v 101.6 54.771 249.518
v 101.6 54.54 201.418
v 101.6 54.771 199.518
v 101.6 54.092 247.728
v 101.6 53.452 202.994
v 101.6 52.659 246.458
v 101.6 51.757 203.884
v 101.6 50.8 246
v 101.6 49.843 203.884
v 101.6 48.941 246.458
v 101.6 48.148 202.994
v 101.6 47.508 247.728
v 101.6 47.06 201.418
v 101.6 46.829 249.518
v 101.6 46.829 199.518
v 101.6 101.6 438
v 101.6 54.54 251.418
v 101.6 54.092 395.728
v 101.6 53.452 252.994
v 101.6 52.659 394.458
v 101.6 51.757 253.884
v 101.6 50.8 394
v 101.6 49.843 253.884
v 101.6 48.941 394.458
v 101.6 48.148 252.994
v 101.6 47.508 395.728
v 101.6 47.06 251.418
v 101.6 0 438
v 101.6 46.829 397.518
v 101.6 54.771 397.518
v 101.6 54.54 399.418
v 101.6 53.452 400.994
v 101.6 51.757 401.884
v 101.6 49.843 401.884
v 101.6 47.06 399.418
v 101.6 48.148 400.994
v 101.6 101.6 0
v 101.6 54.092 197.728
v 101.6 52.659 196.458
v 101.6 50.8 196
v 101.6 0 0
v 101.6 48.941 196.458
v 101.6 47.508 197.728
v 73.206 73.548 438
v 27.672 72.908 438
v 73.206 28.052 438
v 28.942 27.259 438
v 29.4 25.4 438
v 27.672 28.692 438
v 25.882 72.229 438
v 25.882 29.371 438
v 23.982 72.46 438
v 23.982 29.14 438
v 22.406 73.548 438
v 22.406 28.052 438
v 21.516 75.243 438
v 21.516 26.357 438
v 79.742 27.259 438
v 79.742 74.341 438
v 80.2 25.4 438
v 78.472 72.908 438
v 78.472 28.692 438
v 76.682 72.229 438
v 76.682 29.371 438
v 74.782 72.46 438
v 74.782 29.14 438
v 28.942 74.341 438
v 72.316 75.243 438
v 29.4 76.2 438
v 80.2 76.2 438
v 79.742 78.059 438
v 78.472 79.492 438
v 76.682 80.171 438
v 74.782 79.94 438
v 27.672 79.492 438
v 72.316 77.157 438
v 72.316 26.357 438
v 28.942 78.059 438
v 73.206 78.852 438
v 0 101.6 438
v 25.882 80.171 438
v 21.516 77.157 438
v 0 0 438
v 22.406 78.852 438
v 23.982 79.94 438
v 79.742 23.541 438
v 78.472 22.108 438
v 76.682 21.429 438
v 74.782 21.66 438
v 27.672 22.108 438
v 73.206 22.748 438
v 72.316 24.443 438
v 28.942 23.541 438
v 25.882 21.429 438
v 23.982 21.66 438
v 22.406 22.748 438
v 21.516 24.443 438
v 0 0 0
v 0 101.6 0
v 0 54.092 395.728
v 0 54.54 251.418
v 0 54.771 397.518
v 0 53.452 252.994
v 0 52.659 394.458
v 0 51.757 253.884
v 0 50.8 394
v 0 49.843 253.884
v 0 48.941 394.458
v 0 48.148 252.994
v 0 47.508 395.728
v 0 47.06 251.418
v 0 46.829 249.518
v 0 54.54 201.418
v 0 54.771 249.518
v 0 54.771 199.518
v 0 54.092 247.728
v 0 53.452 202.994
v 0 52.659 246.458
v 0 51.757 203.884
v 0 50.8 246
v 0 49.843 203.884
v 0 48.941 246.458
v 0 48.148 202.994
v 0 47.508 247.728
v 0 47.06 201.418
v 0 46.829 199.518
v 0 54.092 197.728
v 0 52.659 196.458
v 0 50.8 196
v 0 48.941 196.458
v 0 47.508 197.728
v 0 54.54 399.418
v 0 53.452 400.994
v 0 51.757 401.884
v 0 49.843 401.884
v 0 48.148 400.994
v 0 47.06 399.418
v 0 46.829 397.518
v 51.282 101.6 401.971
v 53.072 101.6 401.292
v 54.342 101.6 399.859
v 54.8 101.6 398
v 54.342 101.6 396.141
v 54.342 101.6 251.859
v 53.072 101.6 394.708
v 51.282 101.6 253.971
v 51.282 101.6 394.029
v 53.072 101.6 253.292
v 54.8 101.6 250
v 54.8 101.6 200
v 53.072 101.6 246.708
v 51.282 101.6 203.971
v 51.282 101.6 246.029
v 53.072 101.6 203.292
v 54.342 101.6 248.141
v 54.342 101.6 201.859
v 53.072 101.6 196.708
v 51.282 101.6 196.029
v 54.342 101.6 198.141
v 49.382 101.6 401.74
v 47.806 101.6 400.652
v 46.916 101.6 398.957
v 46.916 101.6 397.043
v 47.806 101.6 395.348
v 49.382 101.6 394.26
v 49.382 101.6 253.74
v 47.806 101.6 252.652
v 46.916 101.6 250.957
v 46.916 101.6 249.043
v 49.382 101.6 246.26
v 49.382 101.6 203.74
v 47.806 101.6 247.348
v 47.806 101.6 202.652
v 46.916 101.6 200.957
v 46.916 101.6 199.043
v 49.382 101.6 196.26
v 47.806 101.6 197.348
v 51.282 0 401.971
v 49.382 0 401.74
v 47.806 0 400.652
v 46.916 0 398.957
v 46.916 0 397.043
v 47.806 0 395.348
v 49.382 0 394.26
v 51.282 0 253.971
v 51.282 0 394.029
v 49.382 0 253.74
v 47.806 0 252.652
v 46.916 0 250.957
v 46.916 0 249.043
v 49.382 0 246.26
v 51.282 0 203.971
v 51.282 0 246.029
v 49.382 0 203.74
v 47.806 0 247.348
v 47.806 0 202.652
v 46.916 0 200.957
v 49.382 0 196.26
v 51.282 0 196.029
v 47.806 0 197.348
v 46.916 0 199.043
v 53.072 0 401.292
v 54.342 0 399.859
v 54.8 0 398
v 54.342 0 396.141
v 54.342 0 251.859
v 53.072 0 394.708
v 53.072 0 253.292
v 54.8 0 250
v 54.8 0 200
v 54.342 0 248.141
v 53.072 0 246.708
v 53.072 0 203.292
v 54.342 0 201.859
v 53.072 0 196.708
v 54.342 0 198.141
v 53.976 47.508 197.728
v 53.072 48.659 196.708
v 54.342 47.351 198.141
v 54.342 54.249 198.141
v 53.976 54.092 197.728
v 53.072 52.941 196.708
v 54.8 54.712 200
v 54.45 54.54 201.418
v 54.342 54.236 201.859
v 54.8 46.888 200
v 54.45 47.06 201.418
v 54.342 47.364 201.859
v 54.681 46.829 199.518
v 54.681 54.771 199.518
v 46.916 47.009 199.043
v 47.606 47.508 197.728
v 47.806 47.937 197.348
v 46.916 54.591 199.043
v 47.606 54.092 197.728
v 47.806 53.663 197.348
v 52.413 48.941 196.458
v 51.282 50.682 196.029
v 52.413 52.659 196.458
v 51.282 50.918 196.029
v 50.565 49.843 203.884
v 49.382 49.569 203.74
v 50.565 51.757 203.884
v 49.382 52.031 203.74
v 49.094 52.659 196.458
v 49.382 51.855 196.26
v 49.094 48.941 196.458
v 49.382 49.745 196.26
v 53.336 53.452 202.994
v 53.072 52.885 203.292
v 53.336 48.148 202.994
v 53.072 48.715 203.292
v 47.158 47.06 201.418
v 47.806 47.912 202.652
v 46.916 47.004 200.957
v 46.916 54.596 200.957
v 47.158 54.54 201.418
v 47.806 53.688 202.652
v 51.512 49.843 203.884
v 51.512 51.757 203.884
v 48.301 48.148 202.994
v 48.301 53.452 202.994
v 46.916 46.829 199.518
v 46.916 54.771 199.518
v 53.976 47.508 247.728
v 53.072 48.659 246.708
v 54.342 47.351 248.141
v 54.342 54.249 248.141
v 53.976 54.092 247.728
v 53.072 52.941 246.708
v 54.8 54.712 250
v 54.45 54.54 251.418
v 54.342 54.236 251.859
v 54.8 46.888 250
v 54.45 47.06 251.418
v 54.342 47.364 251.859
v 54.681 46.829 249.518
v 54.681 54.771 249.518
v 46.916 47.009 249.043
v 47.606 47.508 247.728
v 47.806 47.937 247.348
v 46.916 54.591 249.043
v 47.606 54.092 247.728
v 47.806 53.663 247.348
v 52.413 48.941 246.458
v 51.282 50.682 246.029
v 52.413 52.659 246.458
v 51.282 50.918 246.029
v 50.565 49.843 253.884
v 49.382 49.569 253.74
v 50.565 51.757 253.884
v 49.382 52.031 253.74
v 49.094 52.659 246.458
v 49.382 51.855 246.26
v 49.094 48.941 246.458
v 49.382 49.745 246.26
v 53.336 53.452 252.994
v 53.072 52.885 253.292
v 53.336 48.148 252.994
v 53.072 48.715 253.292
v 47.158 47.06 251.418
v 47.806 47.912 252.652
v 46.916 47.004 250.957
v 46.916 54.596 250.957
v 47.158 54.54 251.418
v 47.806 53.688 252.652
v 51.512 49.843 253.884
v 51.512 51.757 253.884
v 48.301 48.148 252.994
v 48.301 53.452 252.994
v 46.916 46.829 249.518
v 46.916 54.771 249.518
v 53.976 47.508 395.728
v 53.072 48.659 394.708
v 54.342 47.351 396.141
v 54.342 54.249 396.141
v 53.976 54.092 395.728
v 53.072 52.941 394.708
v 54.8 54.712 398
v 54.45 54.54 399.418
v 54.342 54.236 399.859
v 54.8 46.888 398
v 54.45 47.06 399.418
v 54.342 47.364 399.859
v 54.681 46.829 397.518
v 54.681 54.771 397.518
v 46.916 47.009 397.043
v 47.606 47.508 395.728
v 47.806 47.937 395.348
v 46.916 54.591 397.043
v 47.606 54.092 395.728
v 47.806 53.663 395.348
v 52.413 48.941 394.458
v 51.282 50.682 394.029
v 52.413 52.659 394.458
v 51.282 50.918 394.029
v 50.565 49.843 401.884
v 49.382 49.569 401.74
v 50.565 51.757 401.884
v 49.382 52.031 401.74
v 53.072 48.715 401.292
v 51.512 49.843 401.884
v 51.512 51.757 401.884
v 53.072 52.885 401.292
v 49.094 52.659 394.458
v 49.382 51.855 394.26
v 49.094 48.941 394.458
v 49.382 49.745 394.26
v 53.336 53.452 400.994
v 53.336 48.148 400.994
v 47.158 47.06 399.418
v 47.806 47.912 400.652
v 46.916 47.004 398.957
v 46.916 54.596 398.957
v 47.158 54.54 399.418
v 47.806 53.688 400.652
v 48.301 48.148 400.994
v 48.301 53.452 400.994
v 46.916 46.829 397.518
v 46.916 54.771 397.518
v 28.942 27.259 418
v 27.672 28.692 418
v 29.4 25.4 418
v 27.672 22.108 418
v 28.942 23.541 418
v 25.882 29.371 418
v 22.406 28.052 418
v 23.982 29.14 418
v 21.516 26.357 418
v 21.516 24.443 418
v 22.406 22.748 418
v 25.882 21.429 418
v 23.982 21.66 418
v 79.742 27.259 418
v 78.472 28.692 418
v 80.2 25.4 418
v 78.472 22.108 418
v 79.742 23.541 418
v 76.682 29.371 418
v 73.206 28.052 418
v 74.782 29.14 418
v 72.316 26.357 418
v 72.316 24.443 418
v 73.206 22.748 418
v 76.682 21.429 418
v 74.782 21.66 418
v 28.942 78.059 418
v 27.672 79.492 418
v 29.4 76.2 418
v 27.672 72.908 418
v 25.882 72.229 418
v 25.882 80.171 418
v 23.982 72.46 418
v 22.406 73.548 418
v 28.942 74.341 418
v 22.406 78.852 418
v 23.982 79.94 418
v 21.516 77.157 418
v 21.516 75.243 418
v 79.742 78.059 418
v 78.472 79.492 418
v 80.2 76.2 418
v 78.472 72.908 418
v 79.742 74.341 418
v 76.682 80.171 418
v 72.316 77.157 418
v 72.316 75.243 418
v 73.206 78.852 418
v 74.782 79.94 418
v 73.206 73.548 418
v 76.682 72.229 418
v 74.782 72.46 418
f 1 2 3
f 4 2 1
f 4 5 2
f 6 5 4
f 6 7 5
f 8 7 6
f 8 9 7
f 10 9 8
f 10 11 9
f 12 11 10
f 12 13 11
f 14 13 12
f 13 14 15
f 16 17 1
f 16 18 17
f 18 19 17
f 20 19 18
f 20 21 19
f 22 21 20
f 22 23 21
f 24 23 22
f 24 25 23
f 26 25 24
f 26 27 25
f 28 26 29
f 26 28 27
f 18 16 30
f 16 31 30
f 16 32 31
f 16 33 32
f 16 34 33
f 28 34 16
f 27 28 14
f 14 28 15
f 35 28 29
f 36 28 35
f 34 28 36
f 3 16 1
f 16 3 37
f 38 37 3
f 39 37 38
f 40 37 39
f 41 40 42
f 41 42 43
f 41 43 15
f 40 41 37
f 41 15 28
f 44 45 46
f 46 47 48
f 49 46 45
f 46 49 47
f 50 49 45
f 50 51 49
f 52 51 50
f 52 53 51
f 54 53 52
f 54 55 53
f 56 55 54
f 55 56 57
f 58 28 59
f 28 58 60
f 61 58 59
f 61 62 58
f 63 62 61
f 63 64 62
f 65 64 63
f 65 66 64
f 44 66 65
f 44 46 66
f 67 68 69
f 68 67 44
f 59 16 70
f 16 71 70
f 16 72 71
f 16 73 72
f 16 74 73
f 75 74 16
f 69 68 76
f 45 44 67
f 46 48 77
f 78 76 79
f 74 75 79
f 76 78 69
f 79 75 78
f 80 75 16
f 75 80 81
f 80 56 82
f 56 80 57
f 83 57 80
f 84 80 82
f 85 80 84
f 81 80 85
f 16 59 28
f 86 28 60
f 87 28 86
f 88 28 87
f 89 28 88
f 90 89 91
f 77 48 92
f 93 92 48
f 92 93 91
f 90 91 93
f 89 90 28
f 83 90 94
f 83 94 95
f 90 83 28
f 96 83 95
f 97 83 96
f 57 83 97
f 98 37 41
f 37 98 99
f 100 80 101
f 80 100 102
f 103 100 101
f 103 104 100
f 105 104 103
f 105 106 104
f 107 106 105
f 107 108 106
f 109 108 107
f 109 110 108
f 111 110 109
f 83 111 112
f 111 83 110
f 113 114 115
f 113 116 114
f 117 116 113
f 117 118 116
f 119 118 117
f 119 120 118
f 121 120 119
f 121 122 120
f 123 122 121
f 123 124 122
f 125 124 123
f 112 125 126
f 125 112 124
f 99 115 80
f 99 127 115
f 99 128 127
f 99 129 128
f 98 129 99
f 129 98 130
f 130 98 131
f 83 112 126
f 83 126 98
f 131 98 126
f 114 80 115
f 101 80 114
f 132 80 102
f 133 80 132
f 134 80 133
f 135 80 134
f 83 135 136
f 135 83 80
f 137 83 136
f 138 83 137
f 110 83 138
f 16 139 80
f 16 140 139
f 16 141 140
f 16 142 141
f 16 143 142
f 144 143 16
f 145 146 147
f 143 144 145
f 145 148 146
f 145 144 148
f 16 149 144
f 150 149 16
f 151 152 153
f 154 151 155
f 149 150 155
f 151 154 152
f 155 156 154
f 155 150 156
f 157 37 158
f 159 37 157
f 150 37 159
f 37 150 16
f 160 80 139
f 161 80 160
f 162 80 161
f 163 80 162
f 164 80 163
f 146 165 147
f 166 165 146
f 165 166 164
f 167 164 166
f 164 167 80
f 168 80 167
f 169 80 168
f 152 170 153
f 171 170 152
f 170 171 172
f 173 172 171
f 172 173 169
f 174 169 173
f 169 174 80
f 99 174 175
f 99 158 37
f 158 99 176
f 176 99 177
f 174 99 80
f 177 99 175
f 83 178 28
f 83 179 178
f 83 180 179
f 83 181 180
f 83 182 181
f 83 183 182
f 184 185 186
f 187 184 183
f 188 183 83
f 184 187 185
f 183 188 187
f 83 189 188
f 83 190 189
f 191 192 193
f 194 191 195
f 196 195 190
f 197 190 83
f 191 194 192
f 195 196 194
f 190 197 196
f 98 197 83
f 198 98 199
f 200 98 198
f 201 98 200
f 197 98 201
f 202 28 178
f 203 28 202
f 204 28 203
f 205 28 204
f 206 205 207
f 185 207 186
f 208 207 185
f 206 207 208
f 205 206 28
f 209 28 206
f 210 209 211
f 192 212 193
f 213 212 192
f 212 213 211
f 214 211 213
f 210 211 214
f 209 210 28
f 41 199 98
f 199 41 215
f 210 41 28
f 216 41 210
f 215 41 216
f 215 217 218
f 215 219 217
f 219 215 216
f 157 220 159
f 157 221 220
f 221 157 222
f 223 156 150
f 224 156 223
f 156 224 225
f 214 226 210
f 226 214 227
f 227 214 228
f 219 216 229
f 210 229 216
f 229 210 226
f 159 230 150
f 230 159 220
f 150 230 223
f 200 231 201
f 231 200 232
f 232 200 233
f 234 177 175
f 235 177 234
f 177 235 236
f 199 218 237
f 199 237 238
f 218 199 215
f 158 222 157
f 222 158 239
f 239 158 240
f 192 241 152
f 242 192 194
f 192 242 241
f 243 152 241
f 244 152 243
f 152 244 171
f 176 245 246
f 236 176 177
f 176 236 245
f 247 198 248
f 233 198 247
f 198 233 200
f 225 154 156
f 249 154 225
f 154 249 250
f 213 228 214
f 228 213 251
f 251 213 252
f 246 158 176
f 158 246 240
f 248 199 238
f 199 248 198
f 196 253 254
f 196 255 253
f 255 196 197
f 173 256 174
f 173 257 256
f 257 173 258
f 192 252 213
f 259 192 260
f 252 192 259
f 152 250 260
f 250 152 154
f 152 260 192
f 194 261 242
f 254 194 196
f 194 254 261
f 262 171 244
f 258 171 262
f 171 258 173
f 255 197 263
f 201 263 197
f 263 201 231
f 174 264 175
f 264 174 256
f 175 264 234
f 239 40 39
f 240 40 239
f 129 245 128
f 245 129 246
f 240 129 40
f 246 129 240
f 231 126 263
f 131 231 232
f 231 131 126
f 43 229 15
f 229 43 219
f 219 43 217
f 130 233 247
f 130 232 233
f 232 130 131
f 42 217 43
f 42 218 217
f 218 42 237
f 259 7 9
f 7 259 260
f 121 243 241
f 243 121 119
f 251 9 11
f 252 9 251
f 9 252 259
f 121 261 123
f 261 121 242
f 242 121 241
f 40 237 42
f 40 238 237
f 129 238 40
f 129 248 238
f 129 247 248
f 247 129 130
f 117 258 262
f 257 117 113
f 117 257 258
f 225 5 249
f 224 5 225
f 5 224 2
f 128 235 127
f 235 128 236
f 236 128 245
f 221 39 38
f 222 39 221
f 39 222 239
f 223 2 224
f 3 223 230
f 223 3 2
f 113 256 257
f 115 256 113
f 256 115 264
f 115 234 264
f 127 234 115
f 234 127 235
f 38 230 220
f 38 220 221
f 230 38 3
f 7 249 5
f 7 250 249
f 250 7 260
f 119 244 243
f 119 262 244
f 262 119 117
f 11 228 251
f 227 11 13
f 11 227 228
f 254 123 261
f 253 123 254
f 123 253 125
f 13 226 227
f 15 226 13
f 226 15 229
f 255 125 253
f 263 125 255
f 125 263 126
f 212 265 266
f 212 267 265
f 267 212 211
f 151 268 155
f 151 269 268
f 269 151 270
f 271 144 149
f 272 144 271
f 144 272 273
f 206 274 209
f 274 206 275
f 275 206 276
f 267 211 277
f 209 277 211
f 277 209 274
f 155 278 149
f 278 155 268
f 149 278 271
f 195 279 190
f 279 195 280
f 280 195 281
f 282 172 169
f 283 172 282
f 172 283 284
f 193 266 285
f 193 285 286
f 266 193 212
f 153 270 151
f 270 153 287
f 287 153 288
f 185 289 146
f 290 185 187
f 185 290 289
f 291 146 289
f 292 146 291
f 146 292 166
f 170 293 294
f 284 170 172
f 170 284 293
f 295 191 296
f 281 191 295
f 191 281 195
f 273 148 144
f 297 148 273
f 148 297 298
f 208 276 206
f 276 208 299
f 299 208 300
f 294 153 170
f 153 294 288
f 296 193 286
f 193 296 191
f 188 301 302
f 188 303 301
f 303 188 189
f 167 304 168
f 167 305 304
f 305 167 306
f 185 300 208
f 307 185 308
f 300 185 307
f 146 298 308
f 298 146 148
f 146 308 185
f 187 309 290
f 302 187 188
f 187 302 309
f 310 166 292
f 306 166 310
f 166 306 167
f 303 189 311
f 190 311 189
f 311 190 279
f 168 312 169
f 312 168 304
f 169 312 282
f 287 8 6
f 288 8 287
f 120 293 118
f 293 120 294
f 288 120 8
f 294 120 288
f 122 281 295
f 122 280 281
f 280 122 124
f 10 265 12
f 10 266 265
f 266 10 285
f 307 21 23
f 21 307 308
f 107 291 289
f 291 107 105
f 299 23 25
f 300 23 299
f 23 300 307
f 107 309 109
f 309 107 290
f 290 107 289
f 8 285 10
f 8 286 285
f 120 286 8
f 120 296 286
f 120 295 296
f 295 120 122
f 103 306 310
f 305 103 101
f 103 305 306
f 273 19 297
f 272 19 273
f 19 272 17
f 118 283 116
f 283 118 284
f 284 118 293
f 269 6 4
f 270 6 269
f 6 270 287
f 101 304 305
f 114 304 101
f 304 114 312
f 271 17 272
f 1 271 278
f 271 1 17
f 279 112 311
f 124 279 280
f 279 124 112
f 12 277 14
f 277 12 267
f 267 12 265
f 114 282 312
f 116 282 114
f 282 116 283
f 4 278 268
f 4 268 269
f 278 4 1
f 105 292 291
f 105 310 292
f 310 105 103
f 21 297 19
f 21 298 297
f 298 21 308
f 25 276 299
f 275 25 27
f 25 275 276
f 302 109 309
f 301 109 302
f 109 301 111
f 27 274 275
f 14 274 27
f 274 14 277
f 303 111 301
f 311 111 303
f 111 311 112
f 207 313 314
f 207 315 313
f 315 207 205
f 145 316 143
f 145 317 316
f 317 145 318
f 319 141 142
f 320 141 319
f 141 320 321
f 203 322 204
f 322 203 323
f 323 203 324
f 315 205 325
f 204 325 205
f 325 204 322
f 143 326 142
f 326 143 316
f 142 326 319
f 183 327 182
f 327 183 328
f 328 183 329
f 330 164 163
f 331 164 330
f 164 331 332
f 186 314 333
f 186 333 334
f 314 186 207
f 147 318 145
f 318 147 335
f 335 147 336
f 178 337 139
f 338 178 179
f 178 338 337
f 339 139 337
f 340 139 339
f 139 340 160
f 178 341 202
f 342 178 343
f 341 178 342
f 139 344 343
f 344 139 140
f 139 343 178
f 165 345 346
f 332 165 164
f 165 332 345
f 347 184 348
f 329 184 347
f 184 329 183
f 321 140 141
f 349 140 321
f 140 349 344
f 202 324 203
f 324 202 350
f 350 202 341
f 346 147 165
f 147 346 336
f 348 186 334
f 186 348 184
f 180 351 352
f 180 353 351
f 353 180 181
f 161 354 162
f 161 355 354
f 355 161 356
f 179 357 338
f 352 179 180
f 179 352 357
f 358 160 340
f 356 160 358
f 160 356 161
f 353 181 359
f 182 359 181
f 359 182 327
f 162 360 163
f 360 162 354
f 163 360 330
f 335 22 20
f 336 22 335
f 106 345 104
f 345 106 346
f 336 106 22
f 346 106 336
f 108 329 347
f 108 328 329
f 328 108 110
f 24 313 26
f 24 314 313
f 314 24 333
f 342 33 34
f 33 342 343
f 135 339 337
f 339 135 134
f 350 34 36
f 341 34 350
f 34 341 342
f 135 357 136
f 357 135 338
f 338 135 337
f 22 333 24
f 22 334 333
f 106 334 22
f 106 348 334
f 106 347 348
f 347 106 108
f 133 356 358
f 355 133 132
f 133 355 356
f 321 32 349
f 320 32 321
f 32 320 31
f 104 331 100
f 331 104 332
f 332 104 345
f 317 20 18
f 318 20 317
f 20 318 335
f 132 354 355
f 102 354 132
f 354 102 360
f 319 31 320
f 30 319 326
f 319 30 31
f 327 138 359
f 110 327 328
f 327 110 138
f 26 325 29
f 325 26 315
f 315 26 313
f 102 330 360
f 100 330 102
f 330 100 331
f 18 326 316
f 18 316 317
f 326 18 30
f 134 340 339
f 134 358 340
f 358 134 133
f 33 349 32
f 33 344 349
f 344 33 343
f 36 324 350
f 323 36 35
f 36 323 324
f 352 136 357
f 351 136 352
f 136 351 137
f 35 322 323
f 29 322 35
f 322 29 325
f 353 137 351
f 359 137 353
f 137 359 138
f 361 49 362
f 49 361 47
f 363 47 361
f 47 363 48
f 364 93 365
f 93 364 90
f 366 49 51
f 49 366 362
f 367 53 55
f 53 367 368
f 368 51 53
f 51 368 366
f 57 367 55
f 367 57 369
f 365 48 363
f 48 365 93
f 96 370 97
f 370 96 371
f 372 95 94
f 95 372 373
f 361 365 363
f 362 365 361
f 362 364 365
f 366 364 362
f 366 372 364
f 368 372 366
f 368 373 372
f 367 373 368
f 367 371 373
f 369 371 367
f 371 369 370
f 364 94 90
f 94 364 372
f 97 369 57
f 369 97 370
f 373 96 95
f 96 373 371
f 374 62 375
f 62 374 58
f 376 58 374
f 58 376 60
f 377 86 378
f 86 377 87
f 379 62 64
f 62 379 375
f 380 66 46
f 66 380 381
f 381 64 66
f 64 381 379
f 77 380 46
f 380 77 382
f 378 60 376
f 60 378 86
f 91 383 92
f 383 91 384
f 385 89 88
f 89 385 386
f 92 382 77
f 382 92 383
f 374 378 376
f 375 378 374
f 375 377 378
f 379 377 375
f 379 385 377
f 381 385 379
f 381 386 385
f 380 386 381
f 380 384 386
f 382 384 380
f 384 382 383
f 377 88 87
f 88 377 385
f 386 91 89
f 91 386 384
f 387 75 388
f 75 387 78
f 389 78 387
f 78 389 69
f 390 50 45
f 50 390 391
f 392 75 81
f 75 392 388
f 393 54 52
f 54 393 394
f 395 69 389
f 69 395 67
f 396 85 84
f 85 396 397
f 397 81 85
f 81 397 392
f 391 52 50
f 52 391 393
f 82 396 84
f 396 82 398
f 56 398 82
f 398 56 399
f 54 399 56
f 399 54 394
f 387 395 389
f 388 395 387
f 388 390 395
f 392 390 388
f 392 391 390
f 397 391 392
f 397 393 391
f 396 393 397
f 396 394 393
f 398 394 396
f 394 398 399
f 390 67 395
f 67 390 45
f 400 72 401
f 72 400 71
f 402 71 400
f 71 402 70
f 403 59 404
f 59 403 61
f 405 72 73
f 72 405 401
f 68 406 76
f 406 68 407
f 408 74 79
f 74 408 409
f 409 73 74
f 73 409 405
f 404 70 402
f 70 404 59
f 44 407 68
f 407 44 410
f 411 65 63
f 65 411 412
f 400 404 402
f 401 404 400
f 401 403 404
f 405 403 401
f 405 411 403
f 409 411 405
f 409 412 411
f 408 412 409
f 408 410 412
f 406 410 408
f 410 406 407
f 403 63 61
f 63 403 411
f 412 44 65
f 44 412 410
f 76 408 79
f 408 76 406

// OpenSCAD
// file: dimensions.scad
// Shared dimensions for SV08 Max Table Components
// Include this file in all component SCAD files

// Convert inches to mm
inch = 25.4;

// Table dimensions
table_width = 802;  // mm
table_depth = 802;  // mm
table_height = 463; // mm (desk height - printer bed at ~30" from floor)

// Component dimensions
leg_size = 4 * inch;          // 4x4 inch legs (101.6mm)
rail_thickness = 30;          // mm (printable thickness)
rail_width = 80;              // mm (printable width)
top_thickness = 25;           // mm

// Connection system dimensions
bolt_hole_diameter = 8;       // M8 bolts
counterbore_diameter = 16;    // For bolt heads
counterbore_depth = 10;       // mm

// Rail heights
bottom_rail_height = 200;     // mm
mid_rail_height = 250;        // mm
top_rail_height = table_height - top_thickness - rail_width; // Calculated

// Calculated rail lengths
long_rail_length = table_width - 2 * leg_size;   // 599mm
short_rail_length = table_depth - 2 * leg_size;  // 599mm

// Table top segment dimensions
segment_width = 150;          // mm
segment_depth = table_depth;  // 802mm
final_segment_width = 52;     // mm (to complete 802mm total width)

// Alignment pin dimensions
pin_diameter = 7.8;           // mm (slightly undersized for press fit)
pin_length = 15;              // mm
pin_hole_diameter = 8;        // mm
// main file
// SV08 Max Table Leg Component
include <dimensions.scad>

module leg() {
    leg_height = table_height - top_thickness;

    difference() {
        // Main leg body
        cube([leg_size, leg_size, leg_height]);

        // Bolt holes for rail connections at bottom level
        translate([leg_size/2, 0, bottom_rail_height])
            rotate([-90, 0, 0])
            cylinder(d=bolt_hole_diameter, h=leg_size);

        translate([0, leg_size/2, bottom_rail_height])
            rotate([0, 90, 0])
            cylinder(d=bolt_hole_diameter, h=leg_size);

        // Bolt holes for rail connections at mid level
        translate([leg_size/2, 0, mid_rail_height])
            rotate([-90, 0, 0])
            cylinder(d=bolt_hole_diameter, h=leg_size);

        translate([0, leg_size/2, mid_rail_height])
            rotate([0, 90, 0])
            cylinder(d=bolt_hole_diameter, h=leg_size);

        // Bolt holes for top rail connections
        translate([leg_size/2, 0, top_rail_height + rail_width/2])
            rotate([-90, 0, 0])
            cylinder(d=bolt_hole_diameter, h=leg_size);

        translate([0, leg_size/2, top_rail_height + rail_width/2])
            rotate([0, 90, 0])
            cylinder(d=bolt_hole_diameter, h=leg_size);

        // Top mounting holes for table surface
        translate([leg_size/4, leg_size/4, leg_height - 20])
            cylinder(d=bolt_hole_diameter, h=25);
        translate([3*leg_size/4, leg_size/4, leg_height - 20])
            cylinder(d=bolt_hole_diameter, h=25);
        translate([leg_size/4, 3*leg_size/4, leg_height - 20])
            cylinder(d=bolt_hole_diameter, h=25);
        translate([3*leg_size/4, 3*leg_size/4, leg_height - 20])
            cylinder(d=bolt_hole_diameter, h=25);
    }
}

// Generate single leg for STL export
leg();
